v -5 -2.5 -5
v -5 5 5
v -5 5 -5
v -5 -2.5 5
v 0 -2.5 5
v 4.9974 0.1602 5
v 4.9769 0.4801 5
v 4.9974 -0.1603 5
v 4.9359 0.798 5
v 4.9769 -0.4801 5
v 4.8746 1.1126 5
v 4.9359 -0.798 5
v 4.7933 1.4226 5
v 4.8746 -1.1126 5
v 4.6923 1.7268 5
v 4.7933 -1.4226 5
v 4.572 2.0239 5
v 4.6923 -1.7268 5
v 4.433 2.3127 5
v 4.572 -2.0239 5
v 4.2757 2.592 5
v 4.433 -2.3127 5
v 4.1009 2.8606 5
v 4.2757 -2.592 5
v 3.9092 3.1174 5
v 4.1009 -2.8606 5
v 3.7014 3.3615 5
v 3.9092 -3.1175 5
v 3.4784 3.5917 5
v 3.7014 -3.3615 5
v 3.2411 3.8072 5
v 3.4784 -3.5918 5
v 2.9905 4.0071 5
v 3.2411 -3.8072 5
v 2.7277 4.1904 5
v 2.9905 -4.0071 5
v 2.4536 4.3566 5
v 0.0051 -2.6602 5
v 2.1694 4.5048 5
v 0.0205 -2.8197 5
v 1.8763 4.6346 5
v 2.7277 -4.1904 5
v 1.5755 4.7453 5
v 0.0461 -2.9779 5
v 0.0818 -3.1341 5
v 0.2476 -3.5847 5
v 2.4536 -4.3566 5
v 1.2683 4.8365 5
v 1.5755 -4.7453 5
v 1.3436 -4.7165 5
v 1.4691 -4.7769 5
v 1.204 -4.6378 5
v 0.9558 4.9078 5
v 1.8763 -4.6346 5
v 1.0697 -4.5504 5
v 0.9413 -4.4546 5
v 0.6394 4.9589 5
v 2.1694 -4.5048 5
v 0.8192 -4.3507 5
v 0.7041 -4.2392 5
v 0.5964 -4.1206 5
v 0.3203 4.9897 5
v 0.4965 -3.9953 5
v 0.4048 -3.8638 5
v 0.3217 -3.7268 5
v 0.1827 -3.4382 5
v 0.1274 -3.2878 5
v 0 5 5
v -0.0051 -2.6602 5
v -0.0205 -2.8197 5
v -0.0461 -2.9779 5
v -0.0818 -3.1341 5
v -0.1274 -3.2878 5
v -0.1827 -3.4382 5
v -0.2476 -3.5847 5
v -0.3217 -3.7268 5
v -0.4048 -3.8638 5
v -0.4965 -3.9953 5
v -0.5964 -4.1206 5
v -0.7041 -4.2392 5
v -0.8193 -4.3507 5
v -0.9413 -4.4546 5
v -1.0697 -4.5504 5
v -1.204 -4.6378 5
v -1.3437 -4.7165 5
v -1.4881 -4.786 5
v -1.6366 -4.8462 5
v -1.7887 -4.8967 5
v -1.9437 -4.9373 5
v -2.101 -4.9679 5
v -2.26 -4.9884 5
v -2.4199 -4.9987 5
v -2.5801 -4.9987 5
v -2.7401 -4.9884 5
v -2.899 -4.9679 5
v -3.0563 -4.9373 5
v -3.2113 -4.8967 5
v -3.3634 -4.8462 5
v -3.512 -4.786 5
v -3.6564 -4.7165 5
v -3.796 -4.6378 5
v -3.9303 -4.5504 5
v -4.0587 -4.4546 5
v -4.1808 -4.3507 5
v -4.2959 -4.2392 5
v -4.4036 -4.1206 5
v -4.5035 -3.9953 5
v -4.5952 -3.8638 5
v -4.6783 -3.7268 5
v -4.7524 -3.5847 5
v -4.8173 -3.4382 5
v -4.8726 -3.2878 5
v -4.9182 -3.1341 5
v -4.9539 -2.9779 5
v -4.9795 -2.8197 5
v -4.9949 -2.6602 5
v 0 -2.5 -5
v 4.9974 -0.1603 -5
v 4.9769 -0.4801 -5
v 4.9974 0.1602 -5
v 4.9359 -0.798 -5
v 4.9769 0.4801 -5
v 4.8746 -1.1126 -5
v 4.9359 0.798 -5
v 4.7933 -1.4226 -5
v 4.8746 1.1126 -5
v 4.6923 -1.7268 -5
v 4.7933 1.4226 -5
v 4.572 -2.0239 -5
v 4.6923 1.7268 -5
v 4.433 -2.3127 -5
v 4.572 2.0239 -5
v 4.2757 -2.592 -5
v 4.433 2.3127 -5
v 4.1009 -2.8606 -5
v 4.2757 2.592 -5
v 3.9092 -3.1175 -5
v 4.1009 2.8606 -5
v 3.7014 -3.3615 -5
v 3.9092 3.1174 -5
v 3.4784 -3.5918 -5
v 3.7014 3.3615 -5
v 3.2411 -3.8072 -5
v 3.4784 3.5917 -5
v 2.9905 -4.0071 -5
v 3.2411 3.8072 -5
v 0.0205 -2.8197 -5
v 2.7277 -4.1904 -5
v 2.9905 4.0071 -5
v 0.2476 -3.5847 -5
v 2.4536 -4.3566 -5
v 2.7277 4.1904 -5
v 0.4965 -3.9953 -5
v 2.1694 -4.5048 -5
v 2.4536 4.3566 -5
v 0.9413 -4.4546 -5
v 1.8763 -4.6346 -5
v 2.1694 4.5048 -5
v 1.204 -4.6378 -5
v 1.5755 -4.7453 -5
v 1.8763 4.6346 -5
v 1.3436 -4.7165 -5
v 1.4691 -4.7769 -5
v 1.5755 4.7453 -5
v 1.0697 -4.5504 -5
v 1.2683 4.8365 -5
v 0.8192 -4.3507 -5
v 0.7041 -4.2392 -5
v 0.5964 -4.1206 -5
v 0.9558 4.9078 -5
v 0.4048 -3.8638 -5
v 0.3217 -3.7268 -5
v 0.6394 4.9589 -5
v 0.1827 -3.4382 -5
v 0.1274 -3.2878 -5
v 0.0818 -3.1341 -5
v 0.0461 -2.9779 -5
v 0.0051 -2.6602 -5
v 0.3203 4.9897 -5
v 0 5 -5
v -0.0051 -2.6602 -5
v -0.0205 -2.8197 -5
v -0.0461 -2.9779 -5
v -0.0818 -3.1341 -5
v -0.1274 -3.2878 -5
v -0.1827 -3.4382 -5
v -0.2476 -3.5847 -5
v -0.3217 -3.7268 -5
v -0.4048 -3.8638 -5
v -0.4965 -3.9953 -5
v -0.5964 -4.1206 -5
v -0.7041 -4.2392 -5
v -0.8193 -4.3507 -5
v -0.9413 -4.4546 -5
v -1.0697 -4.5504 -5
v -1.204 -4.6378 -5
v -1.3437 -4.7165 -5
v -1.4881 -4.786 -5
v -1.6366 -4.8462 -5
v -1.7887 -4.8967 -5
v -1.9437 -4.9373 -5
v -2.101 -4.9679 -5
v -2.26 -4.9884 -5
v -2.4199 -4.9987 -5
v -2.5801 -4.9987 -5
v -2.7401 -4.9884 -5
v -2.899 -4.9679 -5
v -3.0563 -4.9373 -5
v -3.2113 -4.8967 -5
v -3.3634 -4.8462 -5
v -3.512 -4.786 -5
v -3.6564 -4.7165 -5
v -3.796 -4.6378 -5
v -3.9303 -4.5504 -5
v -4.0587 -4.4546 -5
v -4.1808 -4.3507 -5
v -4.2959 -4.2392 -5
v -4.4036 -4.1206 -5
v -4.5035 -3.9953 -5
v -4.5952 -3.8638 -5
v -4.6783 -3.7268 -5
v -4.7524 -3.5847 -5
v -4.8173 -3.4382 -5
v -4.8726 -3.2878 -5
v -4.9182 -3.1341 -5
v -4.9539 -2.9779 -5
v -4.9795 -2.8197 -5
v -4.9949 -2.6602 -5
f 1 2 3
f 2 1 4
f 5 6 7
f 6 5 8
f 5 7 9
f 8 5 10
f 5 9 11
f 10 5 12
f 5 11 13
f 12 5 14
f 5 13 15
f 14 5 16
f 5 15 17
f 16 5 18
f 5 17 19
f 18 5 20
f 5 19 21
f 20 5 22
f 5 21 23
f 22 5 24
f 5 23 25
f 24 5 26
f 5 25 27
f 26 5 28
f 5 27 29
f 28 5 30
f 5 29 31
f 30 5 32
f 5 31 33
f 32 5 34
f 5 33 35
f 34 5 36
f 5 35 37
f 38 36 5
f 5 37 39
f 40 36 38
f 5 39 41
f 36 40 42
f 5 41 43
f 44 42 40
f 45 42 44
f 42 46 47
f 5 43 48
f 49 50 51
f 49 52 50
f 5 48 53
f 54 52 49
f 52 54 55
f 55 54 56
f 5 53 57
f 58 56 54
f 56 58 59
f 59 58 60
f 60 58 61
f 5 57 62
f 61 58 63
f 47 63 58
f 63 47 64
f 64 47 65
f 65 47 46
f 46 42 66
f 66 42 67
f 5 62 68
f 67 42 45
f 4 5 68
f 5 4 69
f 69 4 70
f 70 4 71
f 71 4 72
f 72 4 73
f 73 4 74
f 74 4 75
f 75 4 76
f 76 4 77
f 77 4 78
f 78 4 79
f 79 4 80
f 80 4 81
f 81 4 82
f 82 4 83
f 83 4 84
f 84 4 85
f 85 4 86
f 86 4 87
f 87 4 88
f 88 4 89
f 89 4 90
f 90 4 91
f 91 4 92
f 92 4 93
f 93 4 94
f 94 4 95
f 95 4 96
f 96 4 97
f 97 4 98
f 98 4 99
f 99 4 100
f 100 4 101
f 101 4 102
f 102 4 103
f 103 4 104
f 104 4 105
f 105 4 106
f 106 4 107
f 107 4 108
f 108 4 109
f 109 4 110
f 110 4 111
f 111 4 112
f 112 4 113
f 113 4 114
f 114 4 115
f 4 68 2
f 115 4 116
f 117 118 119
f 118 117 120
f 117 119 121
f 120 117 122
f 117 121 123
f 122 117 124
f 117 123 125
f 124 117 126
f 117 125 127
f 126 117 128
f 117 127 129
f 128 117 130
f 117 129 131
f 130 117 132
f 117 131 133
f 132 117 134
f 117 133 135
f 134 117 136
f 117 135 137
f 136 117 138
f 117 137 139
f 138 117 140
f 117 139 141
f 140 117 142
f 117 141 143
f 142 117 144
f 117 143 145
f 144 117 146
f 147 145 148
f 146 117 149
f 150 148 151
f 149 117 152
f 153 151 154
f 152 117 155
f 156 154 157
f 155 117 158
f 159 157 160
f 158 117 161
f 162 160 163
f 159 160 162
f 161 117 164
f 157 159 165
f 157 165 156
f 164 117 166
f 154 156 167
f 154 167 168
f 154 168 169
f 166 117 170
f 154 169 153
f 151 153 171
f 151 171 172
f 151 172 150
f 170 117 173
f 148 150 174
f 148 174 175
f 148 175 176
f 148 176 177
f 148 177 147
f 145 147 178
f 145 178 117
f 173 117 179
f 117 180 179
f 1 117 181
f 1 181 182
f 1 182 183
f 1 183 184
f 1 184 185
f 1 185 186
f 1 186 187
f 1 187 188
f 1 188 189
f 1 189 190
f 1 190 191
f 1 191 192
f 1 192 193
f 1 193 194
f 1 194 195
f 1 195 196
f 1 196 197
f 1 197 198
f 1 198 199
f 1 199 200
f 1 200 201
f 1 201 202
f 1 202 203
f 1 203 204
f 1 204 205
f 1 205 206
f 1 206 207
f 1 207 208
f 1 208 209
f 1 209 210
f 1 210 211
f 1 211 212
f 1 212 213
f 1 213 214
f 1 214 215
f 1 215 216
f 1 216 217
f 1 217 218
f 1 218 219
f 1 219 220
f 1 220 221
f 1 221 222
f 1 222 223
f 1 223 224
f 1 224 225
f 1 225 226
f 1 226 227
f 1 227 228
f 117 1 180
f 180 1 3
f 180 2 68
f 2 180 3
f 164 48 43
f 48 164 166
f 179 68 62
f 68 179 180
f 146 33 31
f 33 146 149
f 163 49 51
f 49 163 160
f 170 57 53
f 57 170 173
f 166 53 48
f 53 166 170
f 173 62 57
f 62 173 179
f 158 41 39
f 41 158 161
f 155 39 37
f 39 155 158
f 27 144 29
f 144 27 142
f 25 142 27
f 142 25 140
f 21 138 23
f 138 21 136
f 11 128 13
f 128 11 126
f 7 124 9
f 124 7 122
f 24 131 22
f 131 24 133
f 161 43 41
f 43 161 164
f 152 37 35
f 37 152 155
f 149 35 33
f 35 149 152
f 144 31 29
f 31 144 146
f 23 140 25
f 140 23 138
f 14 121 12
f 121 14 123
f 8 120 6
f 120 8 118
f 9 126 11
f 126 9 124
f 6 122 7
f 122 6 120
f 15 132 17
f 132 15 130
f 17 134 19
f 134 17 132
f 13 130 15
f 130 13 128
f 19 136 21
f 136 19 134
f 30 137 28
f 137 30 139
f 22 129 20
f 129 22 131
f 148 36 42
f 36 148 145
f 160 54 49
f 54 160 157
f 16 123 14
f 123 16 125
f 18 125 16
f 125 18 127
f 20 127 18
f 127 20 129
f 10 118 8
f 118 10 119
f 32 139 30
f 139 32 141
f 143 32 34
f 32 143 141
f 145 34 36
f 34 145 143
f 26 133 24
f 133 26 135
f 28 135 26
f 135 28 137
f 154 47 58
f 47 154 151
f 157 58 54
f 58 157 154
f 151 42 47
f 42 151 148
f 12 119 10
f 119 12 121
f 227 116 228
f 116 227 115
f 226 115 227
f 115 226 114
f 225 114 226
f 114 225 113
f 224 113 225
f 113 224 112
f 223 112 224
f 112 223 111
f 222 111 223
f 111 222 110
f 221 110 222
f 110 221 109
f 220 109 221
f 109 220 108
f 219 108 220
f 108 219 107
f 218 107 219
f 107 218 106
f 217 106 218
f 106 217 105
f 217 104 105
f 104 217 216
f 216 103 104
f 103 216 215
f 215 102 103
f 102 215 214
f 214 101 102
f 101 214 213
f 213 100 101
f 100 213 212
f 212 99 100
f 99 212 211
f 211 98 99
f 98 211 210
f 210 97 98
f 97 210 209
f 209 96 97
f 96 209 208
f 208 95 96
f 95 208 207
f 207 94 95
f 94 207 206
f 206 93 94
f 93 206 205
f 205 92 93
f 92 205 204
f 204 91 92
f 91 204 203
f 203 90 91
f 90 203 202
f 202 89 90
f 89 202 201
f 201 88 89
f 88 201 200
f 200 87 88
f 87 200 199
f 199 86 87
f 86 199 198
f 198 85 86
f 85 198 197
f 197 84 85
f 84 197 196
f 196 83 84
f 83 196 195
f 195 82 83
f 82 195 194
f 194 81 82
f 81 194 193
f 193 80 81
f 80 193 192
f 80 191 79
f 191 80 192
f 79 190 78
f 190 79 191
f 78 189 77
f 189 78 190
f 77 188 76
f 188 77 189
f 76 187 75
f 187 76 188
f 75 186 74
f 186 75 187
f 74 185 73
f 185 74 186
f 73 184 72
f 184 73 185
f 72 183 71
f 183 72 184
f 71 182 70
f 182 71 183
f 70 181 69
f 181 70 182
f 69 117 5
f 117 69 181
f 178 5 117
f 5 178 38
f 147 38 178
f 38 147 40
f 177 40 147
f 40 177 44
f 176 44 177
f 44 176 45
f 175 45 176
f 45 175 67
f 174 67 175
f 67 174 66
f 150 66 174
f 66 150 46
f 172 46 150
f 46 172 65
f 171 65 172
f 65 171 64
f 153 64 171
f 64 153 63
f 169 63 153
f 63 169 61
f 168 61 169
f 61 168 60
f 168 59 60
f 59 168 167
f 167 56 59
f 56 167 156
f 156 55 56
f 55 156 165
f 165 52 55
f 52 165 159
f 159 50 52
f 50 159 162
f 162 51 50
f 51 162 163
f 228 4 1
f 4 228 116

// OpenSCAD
// Generated by SolidPython 1.1.3 on 2025-02-20 04:04:01
$fn=50;


intersection() {
	translate(v = [-5.0000000000, -5.0000000000, -5.0000000000]) {
		linear_extrude(height = 10) {
			polygon(points = [[5.0000000000, 10.0000000000], [5.3203510999, 9.9897269638], [5.6393858084, 9.9589500691], [5.9557931435, 9.9077957850], [6.2682729195, 9.8364743152], [6.5755410901, 9.7452787351], [6.8763350244, 9.6345837867], [7.1694186956, 9.5048443395], [7.4535877600, 9.3565935206], [7.7276745061, 9.1904405245], [7.9905526525, 9.0070681093], [8.2411419765, 8.8072297918], [8.4784127530, 8.5917467505], [8.7013899854, 8.3615044513], [8.9091574123, 8.1174490093], [9.1008612730, 7.8605833006], [9.2757138150, 7.5919628416], [9.4329965319, 7.3126914512], [9.5720631151, 7.0239167156], [9.6923421102, 6.7268252721], [9.7933392652, 6.4226379332], [9.8746395609, 6.1126046698], [9.9359089171, 5.7979994752], [9.9768955647, 5.4801151295], [9.9974310810, 5.1602578879], [9.9974310810, 4.8397421121], [9.9768955647, 4.5198848705], [9.9359089171, 4.2020005248], [9.8746395609, 3.8873953302], [9.7933392652, 3.5773620668], [9.6923421102, 3.2731747279], [9.5720631151, 2.9760832844], [9.4329965319, 2.6873085488], [9.2757138150, 2.4080371584], [9.1008612730, 2.1394166994], [8.9091574123, 1.8825509907], [8.7013899854, 1.6384955487], [8.4784127530, 1.4082532495], [8.2411419765, 1.1927702082], [7.9905526525, 0.9929318907], [7.7276745061, 0.8095594755], [7.4535877600, 0.6434064794], [7.1694186956, 0.4951556605], [6.8763350244, 0.3654162133], [6.5755410901, 0.2547212649], [6.2682729195, 0.1635256848], [5.9557931435, 0.0922042150], [5.6393858084, 0.0410499309], [5.3203510999, 0.0102730362], [5.0000000000, 0.0000000000], [0, 0], [0, 10]]);
		}
	}
	rotate(a = -90, v = [0, 0, 1]) {
		translate(v = [-5.0000000000, -5.0000000000, -5.0000000000]) {
			linear_extrude(height = 10) {
				polygon(points = [[7.5000000000, 10.0000000000], [7.6601755500, 9.9948634819], [7.8196929042, 9.9794750346], [7.9778965718, 9.9538978925], [8.1341364598, 9.9182371576], [8.2877705451, 9.8726393675], [8.4381675122, 9.8172918934], [8.5847093478, 9.7524221698], [8.7267938800, 9.6782967603], [8.8638372530, 9.5952202622], [8.9952763262, 9.5035340547], [9.1205709883, 9.4036148959], [9.2392063765, 9.2958733752], [9.3506949927, 9.1807522257], [9.4545787062, 9.0587245046], [9.5504306365, 8.9302916503], [9.6378569075, 8.7959814208], [9.7164982659, 8.6563457256], [9.7860315575, 8.5119583578], [9.8461710551, 8.3634126361], [9.8966696326, 8.2113189666], [9.9373197805, 8.0563023349], [9.9679544585, 7.8989997376], [9.9884477824, 7.7400575648], [9.9987155405, 7.5801289439], [9.9987155405, 7.4198710561], [9.9884477824, 7.2599424352], [9.9679544585, 7.1010002624], [9.9373197805, 6.9436976651], [9.8966696326, 6.7886810334], [9.8461710551, 6.6365873639], [9.7860315575, 6.4880416422], [9.7164982659, 6.3436542744], [9.6378569075, 6.2040185792], [9.5504306365, 6.0697083497], [9.4545787062, 5.9412754954], [9.3506949927, 5.8192477743], [9.2392063765, 5.7041266248], [9.1205709883, 5.5963851041], [8.9952763262, 5.4964659453], [8.8638372530, 5.4047797378], [8.7267938800, 5.3217032397], [8.5847093478, 5.2475778302], [8.4381675122, 5.1827081066], [8.2877705451, 5.1273606325], [8.1341364598, 5.0817628424], [7.9778965718, 5.0461021075], [7.8196929042, 5.0205249654], [7.6601755500, 5.0051365181], [7.5000000000, 5.0000000000], [7.5000000000, 5.0000000000], [7.6601755500, 4.9948634819], [7.8196929042, 4.9794750346], [7.9778965718, 4.9538978925], [8.1341364598, 4.9182371576], [8.2877705451, 4.8726393675], [8.4381675122, 4.8172918934], [8.5847093478, 4.7524221698], [8.7267938800, 4.6782967603], [8.8638372530, 4.5952202622], [8.9952763262, 4.5035340547], [9.1205709883, 4.4036148959], [9.2392063765, 4.2958733752], [9.3506949927, 4.1807522257], [9.4545787062, 4.0587245046], [9.5504306365, 3.9302916503], [9.6378569075, 3.7959814208], [9.7164982659, 3.6563457256], [9.7860315575, 3.5119583578], [9.8461710551, 3.3634126361], [9.8966696326, 3.2113189666], [9.9373197805, 3.0563023349], [9.9679544585, 2.8989997376], [9.9884477824, 2.7400575648], [9.9987155405, 2.5801289439], [9.9987155405, 2.4198710561], [9.9884477824, 2.2599424352], [9.9679544585, 2.1010002624], [9.9373197805, 1.9436976651], [9.8966696326, 1.7886810334], [9.8461710551, 1.6365873639], [9.7860315575, 1.4880416422], [9.7164982659, 1.3436542744], [9.6378569075, 1.2040185792], [9.5504306365, 1.0697083497], [9.4545787062, 0.9412754954], [9.3506949927, 0.8192477743], [9.2392063765, 0.7041266248], [9.1205709883, 0.5963851041], [8.9952763262, 0.4964659453], [8.8638372530, 0.4047797378], [8.7267938800, 0.3217032397], [8.5847093478, 0.2475778302], [8.4381675122, 0.1827081066], [8.2877705451, 0.1273606325], [8.1341364598, 0.0817628424], [7.9778965718, 0.0461021075], [7.8196929042, 0.0205249654], [7.6601755500, 0.0051365181], [7.5000000000, 0.0000000000], [0, 0], [0, 10]]);
			}
		}
	}
}
/***********************************************
*********      SolidPython code:      **********
************************************************
 
from solid import *
from solid.utils import *

import math
import matplotlib.pyplot as plt
import subprocess
import os

class Hole:
    def __init__(self, x, y, radius):
        """
        Hole defined by:
        :param x: x dimension for center point of the circle as a ratio of letter height
        :param y: y dimension for center point of the circle as a ratio of letter height
        :param radius: radius of circle as a ratio of letter height
        """
        self.x = x
        self.y = y
        self.radius = radius

class Letter3D:
    def __init__(self, name, outer_shape_points, height, holes=None):
        """
        3D Letter defined by:
        :param name: name of letter
        :param outer_shape_points: points defining the outer shape of the letter
        :param heigh: size of cube that letter fits inside
        :param holes: list of Holes
        """
        self.name = name
        self.outer_shape_points = outer_shape_points
        self.holes = holes if holes is None else []
        self.height = height


    def generate(self):
        shape = polygon(points=self.outer_shape_points)

        if self.holes:
            for hole in self.holes:
                circle_hole = circle(r=hole.radius*self.height)
                positioned_hole = translate([hole.x*self.height, hole.y*self.height])(circle_hole)
                shape = difference()(shape, positioned_hole)
        
        shape_3d = linear_extrude(height=self.height)(shape)
        shape_3d = translate([-self.height/2, -self.height/2, -self.height/2])(shape_3d)
        return shape_3d
    
    def render(self):
        scad_render_to_file(self.shape, f"output/{self.name}.scad", file_header='$fn=50;')
        subprocess.run(["C:\\Program Files\\OpenSCAD\\openscad.exe", "-o", f"output\\{self.name}.stl", f"output\\{self.name}.scad"])


class TwoLetter3D:
    def __init__(self, height, letterA, letterA_face, letterB=None, letterB_face=None):
        self.height = height
        self.letterA = letterA
        self.letterB = letterB
        self.letterA_face = letterA_face
        self.letterB_face = letterB_face

    def call_letter_generation(self, letter):
        letter = letter.upper()
        function_name = f"letter_{letter}"
        func = globals().get(function_name)
        if func is None:
            raise ValueError(f"No letter generation function defined for letter '{letter}'.")
        else:
            print(func)
        return func(self.height)
    
    def rotate_object(self, face, shape):
        face = face.lower()
        if face == "z":
            return shape
        if face == "x":
            return rotate(a=90, v=[0,1,0])(shape)
        if face == "y":
            return rotate(a=-90, v=[0,0,1])(shape)
        else:
            raise ValueError("Face must be one of 'x', 'y', or 'z'.")

    def render(self):
        if self.letterA:
            letterA3D = self.call_letter_generation(self.letterA)
            letterA3D = self.rotate_object(self.letterA_face, letterA3D)

        if self.letterB:
            letterB3D = self.call_letter_generation(self.letterB)
            letterB3D = self.rotate_object(self.letterB_face, letterB3D)
            combined = intersection()(letterA3D, letterB3D)
            file_name = self.letterA + self.letterB
            scad_render_to_file(combined, f"output/{file_name}.scad", file_header='$fn=50;')
            subprocess.run(["C:\\Program Files\\OpenSCAD\\openscad.exe", "-o", f"output\\{file_name}.stl", f"output\\{file_name}.scad"])
            return
        else:
            file_name = self.letterA
            scad_render_to_file(letterA3D, f"output/{file_name}.scad", file_header='$fn=50;')
            subprocess.run(["C:\\Program Files\\OpenSCAD\\openscad.exe", "-o", f"output\\{file_name}.stl", f"output\\{file_name}.scad"])
    
                

def arc_points(radius, start_angle, end_angle, center=[0,0], num_points=50):
    angles = [start_angle + i * (end_angle - start_angle) / (num_points - 1)
              for i in range(num_points)]
    points = [
        (center[0] + radius * math.cos(math.radians(angle)),
         center[1] + radius * math.sin(math.radians(angle)))
        for angle in angles
    ]
    return points

def letter_A(h):
    shape_points = [(0,0), (h/2, h), (h, 0), (5/6*h, 0), (2/3*h, 1/3*h), (1/3*h, 1/3*h), (h/6, 0)]
    holes = [Hole(1/2, 7/12, 1/6)]
    A = Letter3D("A", shape_points, h, holes)
    return A.generate()

def letter_B(h):
    top_arc_points = arc_points(h/4, 90, -90, center=[3/4*h, 3/4*h])
    bottom_arc_points = arc_points(h/4, 90, -90, center=[3/4*h, h/4])
    other_points = [(0,0),(0,h)]

    shape_points = top_arc_points + bottom_arc_points + other_points
    holes = [Hole(1/2, 3/4, 1/6), Hole(1/2, 1/4, 1/6)]
    B = Letter3D("B", shape_points, h, holes)
    return B.generate()

def letter_C(h):
    outer_arc_points = arc_points(h/2, 30, 330, center=[h/2,h/2])
    inner_arc_points = arc_points(h/4, 30, 330, center=[h/2,h/2])[::-1]
    shape_points = outer_arc_points + inner_arc_points
    # print(shape_points)
    C = Letter3D("C", shape_points, h)
    return C.generate()


def letter_D(h):
    outer_arc_points = arc_points(h/2, 90, -90, center= [h/2, h/2])
    shape_points = outer_arc_points + [(0,0), (0, h)]
    holes = [Hole(1/2, 1/2, 1/6)]
    D = Letter3D("D", shape_points, h, holes)
    return D.generate()

def letter_E(h):
    points = [(0,0), (h,0), (h,h/5), (h/5,h/5), (h/5,2/5*h), (3/4*h,2/5*h), (3/4*h,3/5*h), (h/5,3/5*h), (h/5,4/5*h), (h,4/5*h), (h,h), (0,h)]
    E = Letter3D("E", points, h)
    return E.generate()

def letter_F(h):
    points = [(0,0), (h/5,0), (h/5,2/5*h), (3/4*h,2/5*h), (3/4*h,3/5*h), (h/5,3/5*h), (h/5,4/5*h), (h,4/5*h), (h,h), (0,h)]
    F = Letter3D("F", points, h)
    return F.generate()

if __name__ == "__main__":
    os.makedirs("output", exist_ok=True)

    letters = [chr(x) for x in range(ord('A'), ord('F') + 1)]
    for letter in letters:
        for other_letter in letters:
            shape = TwoLetter3D(10, letter, "z", other_letter, "y")
            shape.render()
 
 
************************************************/
